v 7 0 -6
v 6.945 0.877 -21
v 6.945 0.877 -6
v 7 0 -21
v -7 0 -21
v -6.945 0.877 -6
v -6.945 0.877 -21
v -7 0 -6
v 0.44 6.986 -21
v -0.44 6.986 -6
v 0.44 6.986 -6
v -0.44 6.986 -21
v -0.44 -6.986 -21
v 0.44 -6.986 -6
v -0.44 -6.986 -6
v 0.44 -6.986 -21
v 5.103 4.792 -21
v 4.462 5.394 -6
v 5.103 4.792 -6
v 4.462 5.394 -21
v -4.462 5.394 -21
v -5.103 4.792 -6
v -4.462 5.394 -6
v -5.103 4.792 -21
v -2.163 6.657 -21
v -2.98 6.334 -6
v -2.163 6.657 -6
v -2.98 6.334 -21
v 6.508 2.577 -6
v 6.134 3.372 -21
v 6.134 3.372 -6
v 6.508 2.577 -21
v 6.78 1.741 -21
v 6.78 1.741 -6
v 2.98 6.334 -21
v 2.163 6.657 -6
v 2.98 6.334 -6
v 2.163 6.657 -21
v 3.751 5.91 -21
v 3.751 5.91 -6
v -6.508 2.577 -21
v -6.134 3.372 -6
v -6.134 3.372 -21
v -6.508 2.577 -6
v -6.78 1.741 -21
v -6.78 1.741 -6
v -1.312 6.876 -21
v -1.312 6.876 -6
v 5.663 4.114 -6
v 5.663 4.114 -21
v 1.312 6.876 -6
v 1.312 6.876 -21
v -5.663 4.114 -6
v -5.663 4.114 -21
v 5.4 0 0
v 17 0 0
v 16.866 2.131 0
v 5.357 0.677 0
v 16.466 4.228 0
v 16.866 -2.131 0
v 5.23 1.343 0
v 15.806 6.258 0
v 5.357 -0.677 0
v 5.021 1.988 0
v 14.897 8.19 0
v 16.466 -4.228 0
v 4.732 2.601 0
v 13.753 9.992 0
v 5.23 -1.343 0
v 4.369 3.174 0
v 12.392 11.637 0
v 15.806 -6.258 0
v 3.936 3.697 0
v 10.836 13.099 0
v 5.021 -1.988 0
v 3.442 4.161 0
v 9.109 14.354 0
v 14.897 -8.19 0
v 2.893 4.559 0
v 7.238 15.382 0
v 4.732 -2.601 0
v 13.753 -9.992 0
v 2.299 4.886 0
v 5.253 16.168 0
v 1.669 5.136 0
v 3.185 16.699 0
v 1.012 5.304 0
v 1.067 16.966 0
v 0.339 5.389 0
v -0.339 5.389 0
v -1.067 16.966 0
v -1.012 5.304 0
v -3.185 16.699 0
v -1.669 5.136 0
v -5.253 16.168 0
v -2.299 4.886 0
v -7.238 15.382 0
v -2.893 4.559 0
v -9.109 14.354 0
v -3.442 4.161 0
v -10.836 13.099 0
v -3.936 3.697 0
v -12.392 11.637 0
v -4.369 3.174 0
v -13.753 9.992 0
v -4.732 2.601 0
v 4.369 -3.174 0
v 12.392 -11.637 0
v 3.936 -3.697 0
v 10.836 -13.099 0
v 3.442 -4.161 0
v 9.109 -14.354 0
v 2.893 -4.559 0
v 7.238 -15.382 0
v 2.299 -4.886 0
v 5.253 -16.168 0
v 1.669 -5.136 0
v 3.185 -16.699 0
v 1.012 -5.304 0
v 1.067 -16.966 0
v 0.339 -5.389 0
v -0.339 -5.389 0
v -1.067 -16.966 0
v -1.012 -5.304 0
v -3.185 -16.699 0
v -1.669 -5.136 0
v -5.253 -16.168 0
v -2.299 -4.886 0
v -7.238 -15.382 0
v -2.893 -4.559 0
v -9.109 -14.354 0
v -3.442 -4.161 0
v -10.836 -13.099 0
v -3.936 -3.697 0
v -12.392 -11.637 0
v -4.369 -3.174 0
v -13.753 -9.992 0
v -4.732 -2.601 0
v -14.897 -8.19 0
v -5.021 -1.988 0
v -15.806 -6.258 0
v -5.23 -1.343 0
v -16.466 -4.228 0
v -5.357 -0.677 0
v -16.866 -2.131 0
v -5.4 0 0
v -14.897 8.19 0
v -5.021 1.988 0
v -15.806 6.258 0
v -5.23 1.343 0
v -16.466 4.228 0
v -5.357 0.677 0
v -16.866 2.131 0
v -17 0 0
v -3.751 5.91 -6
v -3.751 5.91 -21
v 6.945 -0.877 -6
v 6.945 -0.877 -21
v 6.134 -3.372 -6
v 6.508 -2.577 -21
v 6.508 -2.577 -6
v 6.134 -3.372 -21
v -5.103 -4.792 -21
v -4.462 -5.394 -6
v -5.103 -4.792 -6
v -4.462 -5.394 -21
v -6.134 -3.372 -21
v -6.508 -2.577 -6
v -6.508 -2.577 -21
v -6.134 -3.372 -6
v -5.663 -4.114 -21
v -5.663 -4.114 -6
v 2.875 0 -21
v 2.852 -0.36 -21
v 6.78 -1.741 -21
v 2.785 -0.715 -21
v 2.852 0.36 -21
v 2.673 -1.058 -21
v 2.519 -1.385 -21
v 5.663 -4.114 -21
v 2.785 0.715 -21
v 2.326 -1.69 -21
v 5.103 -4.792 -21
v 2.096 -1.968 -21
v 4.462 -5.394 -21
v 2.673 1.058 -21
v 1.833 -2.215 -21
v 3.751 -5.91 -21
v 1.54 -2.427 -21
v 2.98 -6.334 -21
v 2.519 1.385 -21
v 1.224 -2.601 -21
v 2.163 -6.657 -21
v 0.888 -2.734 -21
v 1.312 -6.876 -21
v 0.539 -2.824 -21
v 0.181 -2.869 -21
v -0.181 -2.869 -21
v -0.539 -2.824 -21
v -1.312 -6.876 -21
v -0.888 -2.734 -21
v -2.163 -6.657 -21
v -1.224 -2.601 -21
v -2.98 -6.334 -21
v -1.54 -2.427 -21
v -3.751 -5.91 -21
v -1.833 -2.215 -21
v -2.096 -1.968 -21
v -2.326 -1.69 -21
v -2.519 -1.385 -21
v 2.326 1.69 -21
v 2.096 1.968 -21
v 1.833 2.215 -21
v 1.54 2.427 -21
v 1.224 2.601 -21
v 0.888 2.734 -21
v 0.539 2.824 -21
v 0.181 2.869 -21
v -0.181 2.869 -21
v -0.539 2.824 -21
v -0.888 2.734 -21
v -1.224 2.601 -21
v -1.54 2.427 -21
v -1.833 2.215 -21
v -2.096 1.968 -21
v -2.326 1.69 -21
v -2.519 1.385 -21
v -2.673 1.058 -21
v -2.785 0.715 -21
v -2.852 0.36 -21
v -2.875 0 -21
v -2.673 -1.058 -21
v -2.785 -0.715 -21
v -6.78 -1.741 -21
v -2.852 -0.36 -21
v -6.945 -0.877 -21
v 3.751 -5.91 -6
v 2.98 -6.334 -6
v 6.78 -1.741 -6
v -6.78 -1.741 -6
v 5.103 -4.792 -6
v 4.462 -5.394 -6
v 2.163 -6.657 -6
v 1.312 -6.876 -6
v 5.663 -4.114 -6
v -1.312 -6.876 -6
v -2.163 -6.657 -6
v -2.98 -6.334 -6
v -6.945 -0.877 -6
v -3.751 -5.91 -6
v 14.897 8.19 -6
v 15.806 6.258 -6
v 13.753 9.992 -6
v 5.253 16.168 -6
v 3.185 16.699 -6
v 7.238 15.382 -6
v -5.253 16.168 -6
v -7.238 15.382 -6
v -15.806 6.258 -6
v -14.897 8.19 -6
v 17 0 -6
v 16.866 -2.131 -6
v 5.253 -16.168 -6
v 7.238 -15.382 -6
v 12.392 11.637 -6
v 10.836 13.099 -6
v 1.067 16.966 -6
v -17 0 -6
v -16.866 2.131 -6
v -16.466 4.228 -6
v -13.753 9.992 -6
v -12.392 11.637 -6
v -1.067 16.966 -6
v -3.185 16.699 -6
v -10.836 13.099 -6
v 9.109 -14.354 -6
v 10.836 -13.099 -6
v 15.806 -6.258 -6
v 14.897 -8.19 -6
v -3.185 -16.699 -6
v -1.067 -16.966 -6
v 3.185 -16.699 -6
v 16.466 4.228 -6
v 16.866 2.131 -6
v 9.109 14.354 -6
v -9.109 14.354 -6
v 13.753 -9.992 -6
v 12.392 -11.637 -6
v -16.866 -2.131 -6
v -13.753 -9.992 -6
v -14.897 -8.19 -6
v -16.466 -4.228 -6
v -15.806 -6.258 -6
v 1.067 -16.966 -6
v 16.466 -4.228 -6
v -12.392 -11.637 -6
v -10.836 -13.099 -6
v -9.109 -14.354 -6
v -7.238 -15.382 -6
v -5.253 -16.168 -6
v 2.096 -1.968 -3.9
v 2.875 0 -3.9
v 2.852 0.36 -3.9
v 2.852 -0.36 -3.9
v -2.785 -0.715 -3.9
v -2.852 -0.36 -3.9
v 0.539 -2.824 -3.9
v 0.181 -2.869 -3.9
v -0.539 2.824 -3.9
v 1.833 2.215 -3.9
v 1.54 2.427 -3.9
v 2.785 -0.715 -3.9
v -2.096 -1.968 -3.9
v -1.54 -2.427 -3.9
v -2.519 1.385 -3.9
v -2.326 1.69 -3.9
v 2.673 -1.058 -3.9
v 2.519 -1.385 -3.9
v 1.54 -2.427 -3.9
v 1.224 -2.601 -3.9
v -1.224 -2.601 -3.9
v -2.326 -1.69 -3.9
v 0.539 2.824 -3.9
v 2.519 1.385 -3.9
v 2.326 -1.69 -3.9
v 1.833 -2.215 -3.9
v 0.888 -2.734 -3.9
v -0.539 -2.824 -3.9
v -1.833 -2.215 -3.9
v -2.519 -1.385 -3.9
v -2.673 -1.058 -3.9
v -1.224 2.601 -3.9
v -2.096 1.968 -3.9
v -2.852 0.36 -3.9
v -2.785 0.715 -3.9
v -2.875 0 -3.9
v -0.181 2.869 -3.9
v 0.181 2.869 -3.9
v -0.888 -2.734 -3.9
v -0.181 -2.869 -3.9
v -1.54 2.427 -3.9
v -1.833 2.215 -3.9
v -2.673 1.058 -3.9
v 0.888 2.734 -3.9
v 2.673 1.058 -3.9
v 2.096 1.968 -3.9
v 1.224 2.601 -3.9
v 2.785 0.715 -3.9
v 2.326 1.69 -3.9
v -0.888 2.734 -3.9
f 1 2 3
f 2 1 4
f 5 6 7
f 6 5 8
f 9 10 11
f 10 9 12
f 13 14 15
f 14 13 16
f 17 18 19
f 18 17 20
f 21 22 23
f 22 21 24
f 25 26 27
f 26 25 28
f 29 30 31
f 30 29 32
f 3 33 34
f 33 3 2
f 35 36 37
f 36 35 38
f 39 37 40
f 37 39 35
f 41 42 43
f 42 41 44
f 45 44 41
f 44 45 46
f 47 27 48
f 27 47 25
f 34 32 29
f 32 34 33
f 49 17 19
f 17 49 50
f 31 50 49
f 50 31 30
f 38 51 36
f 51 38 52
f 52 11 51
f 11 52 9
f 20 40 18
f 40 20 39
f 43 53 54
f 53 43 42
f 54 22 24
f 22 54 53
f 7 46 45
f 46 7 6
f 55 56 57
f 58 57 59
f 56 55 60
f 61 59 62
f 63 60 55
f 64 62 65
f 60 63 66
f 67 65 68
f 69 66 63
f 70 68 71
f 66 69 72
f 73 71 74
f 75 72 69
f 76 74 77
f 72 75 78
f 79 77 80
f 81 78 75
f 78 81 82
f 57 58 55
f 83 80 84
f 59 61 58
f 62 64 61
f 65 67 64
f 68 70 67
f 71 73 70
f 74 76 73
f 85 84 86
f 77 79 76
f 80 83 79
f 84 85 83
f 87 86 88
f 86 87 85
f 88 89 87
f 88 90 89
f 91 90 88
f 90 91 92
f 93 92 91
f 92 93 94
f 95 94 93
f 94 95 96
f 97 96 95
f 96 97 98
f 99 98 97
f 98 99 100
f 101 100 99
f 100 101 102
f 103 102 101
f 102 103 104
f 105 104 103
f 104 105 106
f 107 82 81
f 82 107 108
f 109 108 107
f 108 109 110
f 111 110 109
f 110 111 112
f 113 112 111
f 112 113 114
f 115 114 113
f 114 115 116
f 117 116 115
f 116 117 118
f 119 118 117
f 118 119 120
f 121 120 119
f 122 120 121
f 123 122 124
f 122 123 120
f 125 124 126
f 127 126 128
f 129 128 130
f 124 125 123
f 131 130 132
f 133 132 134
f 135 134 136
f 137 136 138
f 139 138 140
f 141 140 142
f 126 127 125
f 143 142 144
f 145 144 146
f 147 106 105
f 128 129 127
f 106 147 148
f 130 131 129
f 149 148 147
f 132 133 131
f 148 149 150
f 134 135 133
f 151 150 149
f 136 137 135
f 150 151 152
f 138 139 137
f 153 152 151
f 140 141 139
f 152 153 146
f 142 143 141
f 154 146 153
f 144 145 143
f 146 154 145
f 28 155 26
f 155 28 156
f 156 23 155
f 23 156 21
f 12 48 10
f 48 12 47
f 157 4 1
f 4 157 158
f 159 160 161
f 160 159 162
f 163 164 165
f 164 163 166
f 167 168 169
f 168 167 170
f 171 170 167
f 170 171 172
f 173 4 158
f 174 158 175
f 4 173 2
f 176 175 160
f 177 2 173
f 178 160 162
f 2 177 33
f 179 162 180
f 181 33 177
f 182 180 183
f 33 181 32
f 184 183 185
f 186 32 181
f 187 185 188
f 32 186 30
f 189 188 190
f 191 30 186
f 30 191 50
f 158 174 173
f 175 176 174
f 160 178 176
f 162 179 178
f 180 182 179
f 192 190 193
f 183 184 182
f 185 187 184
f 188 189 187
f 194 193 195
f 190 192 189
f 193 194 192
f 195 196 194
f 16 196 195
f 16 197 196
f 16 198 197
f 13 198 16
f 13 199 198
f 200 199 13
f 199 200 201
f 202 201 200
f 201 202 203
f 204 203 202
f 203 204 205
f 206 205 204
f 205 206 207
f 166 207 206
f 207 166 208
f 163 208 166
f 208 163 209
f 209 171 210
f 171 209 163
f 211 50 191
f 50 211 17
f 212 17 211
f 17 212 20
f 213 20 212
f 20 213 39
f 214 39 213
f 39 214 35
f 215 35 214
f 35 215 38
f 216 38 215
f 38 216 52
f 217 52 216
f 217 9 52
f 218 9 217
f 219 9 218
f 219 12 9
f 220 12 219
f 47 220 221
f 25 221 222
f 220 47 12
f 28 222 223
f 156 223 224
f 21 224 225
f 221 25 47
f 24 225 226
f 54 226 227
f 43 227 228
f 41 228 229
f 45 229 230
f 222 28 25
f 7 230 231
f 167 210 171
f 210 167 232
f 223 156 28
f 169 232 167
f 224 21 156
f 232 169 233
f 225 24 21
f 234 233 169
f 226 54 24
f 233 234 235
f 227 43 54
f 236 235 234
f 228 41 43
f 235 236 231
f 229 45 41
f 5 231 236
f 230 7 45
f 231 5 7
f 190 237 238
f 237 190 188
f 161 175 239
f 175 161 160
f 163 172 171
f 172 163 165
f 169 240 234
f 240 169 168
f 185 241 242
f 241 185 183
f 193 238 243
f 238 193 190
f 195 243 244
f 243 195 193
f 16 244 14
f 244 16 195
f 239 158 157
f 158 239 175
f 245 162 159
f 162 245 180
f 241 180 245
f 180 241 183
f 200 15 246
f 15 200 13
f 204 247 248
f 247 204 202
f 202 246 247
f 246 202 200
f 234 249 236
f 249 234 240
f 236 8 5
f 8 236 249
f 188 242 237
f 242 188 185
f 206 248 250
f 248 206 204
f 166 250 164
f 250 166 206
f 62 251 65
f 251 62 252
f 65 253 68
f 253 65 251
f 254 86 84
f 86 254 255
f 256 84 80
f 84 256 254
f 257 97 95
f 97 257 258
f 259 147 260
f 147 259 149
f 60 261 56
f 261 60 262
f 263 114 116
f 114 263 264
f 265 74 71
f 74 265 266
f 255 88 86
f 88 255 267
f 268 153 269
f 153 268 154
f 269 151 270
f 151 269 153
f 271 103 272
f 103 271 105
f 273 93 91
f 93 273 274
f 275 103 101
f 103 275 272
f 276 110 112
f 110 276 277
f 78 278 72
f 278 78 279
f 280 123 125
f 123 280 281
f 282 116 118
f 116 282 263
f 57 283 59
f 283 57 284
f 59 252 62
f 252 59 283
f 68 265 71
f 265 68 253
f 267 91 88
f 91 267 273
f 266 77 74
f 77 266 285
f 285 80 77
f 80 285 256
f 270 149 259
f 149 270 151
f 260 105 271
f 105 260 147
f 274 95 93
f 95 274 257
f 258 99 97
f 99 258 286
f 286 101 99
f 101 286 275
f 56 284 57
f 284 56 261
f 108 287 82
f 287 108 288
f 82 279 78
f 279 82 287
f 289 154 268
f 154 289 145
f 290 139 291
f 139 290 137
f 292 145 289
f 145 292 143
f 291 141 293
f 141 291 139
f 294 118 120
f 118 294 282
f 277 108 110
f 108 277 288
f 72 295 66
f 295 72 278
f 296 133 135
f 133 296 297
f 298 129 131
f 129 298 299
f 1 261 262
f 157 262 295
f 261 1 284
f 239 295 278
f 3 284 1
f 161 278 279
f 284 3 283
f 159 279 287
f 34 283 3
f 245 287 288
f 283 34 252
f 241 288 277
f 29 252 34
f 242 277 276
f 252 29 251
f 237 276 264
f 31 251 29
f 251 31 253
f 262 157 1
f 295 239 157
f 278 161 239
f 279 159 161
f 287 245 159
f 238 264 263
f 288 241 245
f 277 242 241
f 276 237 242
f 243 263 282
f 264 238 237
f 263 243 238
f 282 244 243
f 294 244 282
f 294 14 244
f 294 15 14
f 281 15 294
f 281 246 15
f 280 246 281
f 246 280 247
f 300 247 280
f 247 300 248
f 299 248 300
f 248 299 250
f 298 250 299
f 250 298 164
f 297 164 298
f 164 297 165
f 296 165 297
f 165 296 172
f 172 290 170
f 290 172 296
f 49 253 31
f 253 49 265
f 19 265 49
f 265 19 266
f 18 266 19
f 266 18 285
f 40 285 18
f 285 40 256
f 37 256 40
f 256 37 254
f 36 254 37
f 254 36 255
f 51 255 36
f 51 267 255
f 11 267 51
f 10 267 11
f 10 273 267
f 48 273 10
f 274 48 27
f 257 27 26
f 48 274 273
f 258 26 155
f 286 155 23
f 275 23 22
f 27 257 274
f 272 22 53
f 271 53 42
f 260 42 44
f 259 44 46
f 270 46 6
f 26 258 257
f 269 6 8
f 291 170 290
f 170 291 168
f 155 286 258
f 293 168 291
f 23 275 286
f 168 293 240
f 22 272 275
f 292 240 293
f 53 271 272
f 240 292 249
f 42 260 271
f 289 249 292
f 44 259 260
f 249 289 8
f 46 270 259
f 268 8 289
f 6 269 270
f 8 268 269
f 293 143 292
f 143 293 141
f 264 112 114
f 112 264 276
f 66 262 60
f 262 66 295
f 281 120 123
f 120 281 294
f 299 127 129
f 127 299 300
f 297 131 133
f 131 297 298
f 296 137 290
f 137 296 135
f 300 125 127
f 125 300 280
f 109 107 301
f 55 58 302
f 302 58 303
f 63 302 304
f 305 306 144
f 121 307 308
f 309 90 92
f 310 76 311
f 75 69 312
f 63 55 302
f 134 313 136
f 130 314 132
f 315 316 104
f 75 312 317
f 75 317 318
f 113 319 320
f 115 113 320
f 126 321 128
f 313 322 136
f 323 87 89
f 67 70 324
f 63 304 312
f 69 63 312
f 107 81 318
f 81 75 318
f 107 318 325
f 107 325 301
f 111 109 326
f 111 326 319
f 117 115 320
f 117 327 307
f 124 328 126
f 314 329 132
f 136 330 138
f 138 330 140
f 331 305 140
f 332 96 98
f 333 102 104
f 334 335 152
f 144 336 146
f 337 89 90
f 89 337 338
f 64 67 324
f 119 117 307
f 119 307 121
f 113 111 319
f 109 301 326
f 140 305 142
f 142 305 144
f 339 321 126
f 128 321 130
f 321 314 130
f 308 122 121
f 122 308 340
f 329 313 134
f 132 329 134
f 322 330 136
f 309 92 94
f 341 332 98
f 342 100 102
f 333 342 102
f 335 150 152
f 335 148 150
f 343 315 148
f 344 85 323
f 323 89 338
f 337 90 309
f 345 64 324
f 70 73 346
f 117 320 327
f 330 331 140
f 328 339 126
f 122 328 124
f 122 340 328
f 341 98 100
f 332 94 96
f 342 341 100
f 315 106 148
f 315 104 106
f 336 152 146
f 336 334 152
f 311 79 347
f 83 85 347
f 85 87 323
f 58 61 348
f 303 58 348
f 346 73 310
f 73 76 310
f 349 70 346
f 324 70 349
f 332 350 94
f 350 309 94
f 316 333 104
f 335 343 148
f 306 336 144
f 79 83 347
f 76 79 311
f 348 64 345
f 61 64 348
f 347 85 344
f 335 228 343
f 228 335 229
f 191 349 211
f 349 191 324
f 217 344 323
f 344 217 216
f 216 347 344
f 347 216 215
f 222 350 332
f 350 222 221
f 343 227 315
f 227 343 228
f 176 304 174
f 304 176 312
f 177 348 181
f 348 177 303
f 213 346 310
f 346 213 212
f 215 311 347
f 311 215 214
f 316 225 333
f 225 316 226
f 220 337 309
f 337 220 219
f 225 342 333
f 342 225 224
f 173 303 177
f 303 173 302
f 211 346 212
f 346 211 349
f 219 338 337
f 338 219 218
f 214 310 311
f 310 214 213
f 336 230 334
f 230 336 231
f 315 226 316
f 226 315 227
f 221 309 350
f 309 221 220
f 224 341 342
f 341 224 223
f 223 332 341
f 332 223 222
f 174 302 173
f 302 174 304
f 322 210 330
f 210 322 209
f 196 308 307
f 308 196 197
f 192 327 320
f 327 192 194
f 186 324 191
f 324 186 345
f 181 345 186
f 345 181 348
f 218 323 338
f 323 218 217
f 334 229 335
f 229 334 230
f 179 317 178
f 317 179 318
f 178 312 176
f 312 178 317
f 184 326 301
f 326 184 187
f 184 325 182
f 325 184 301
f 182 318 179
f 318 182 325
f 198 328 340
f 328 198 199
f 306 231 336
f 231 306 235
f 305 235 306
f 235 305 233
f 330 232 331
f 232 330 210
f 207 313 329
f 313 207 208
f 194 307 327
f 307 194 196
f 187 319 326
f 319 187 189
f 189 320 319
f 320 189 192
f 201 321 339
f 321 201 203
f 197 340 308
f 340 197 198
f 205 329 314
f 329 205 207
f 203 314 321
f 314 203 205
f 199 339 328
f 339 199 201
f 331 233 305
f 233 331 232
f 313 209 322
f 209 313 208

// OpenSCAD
$fn = 50;


difference() {
	union() {
		translate(v = [0, 0, -21.0000000000]) {
			cylinder(h = 21, r = 7.0000000000);
		}
		translate(v = [0, 0, -6.0000000000]) {
			cylinder(h = 6, r = 17.0000000000);
		}
	}
	union() {
		translate(v = [0, 0, 0]) {
			rotate(a = [0, 0, 0]) {
				difference() {
					union() {
						#translate(v = [0, 0, -21.0000000000]) {
							cylinder(h = 21, r = 2.6000000000);
						}
						#translate(v = [0, 0, -3.9000000000]) {
							cylinder(h = 3.9000000000, r = 7.0000000000, r1 = 2.8750000000, r2 = 5.4000000000);
						}
						#translate(v = [0, 0, -21.0000000000]) {
							cylinder(h = 21, r = 2.8750000000);
						}
						#translate(v = [0, 0, -21.0000000000]) {
							cylinder(h = 21, r = 2.6000000000);
						}
					}
					union();
				}
			}
		}
	}
}
